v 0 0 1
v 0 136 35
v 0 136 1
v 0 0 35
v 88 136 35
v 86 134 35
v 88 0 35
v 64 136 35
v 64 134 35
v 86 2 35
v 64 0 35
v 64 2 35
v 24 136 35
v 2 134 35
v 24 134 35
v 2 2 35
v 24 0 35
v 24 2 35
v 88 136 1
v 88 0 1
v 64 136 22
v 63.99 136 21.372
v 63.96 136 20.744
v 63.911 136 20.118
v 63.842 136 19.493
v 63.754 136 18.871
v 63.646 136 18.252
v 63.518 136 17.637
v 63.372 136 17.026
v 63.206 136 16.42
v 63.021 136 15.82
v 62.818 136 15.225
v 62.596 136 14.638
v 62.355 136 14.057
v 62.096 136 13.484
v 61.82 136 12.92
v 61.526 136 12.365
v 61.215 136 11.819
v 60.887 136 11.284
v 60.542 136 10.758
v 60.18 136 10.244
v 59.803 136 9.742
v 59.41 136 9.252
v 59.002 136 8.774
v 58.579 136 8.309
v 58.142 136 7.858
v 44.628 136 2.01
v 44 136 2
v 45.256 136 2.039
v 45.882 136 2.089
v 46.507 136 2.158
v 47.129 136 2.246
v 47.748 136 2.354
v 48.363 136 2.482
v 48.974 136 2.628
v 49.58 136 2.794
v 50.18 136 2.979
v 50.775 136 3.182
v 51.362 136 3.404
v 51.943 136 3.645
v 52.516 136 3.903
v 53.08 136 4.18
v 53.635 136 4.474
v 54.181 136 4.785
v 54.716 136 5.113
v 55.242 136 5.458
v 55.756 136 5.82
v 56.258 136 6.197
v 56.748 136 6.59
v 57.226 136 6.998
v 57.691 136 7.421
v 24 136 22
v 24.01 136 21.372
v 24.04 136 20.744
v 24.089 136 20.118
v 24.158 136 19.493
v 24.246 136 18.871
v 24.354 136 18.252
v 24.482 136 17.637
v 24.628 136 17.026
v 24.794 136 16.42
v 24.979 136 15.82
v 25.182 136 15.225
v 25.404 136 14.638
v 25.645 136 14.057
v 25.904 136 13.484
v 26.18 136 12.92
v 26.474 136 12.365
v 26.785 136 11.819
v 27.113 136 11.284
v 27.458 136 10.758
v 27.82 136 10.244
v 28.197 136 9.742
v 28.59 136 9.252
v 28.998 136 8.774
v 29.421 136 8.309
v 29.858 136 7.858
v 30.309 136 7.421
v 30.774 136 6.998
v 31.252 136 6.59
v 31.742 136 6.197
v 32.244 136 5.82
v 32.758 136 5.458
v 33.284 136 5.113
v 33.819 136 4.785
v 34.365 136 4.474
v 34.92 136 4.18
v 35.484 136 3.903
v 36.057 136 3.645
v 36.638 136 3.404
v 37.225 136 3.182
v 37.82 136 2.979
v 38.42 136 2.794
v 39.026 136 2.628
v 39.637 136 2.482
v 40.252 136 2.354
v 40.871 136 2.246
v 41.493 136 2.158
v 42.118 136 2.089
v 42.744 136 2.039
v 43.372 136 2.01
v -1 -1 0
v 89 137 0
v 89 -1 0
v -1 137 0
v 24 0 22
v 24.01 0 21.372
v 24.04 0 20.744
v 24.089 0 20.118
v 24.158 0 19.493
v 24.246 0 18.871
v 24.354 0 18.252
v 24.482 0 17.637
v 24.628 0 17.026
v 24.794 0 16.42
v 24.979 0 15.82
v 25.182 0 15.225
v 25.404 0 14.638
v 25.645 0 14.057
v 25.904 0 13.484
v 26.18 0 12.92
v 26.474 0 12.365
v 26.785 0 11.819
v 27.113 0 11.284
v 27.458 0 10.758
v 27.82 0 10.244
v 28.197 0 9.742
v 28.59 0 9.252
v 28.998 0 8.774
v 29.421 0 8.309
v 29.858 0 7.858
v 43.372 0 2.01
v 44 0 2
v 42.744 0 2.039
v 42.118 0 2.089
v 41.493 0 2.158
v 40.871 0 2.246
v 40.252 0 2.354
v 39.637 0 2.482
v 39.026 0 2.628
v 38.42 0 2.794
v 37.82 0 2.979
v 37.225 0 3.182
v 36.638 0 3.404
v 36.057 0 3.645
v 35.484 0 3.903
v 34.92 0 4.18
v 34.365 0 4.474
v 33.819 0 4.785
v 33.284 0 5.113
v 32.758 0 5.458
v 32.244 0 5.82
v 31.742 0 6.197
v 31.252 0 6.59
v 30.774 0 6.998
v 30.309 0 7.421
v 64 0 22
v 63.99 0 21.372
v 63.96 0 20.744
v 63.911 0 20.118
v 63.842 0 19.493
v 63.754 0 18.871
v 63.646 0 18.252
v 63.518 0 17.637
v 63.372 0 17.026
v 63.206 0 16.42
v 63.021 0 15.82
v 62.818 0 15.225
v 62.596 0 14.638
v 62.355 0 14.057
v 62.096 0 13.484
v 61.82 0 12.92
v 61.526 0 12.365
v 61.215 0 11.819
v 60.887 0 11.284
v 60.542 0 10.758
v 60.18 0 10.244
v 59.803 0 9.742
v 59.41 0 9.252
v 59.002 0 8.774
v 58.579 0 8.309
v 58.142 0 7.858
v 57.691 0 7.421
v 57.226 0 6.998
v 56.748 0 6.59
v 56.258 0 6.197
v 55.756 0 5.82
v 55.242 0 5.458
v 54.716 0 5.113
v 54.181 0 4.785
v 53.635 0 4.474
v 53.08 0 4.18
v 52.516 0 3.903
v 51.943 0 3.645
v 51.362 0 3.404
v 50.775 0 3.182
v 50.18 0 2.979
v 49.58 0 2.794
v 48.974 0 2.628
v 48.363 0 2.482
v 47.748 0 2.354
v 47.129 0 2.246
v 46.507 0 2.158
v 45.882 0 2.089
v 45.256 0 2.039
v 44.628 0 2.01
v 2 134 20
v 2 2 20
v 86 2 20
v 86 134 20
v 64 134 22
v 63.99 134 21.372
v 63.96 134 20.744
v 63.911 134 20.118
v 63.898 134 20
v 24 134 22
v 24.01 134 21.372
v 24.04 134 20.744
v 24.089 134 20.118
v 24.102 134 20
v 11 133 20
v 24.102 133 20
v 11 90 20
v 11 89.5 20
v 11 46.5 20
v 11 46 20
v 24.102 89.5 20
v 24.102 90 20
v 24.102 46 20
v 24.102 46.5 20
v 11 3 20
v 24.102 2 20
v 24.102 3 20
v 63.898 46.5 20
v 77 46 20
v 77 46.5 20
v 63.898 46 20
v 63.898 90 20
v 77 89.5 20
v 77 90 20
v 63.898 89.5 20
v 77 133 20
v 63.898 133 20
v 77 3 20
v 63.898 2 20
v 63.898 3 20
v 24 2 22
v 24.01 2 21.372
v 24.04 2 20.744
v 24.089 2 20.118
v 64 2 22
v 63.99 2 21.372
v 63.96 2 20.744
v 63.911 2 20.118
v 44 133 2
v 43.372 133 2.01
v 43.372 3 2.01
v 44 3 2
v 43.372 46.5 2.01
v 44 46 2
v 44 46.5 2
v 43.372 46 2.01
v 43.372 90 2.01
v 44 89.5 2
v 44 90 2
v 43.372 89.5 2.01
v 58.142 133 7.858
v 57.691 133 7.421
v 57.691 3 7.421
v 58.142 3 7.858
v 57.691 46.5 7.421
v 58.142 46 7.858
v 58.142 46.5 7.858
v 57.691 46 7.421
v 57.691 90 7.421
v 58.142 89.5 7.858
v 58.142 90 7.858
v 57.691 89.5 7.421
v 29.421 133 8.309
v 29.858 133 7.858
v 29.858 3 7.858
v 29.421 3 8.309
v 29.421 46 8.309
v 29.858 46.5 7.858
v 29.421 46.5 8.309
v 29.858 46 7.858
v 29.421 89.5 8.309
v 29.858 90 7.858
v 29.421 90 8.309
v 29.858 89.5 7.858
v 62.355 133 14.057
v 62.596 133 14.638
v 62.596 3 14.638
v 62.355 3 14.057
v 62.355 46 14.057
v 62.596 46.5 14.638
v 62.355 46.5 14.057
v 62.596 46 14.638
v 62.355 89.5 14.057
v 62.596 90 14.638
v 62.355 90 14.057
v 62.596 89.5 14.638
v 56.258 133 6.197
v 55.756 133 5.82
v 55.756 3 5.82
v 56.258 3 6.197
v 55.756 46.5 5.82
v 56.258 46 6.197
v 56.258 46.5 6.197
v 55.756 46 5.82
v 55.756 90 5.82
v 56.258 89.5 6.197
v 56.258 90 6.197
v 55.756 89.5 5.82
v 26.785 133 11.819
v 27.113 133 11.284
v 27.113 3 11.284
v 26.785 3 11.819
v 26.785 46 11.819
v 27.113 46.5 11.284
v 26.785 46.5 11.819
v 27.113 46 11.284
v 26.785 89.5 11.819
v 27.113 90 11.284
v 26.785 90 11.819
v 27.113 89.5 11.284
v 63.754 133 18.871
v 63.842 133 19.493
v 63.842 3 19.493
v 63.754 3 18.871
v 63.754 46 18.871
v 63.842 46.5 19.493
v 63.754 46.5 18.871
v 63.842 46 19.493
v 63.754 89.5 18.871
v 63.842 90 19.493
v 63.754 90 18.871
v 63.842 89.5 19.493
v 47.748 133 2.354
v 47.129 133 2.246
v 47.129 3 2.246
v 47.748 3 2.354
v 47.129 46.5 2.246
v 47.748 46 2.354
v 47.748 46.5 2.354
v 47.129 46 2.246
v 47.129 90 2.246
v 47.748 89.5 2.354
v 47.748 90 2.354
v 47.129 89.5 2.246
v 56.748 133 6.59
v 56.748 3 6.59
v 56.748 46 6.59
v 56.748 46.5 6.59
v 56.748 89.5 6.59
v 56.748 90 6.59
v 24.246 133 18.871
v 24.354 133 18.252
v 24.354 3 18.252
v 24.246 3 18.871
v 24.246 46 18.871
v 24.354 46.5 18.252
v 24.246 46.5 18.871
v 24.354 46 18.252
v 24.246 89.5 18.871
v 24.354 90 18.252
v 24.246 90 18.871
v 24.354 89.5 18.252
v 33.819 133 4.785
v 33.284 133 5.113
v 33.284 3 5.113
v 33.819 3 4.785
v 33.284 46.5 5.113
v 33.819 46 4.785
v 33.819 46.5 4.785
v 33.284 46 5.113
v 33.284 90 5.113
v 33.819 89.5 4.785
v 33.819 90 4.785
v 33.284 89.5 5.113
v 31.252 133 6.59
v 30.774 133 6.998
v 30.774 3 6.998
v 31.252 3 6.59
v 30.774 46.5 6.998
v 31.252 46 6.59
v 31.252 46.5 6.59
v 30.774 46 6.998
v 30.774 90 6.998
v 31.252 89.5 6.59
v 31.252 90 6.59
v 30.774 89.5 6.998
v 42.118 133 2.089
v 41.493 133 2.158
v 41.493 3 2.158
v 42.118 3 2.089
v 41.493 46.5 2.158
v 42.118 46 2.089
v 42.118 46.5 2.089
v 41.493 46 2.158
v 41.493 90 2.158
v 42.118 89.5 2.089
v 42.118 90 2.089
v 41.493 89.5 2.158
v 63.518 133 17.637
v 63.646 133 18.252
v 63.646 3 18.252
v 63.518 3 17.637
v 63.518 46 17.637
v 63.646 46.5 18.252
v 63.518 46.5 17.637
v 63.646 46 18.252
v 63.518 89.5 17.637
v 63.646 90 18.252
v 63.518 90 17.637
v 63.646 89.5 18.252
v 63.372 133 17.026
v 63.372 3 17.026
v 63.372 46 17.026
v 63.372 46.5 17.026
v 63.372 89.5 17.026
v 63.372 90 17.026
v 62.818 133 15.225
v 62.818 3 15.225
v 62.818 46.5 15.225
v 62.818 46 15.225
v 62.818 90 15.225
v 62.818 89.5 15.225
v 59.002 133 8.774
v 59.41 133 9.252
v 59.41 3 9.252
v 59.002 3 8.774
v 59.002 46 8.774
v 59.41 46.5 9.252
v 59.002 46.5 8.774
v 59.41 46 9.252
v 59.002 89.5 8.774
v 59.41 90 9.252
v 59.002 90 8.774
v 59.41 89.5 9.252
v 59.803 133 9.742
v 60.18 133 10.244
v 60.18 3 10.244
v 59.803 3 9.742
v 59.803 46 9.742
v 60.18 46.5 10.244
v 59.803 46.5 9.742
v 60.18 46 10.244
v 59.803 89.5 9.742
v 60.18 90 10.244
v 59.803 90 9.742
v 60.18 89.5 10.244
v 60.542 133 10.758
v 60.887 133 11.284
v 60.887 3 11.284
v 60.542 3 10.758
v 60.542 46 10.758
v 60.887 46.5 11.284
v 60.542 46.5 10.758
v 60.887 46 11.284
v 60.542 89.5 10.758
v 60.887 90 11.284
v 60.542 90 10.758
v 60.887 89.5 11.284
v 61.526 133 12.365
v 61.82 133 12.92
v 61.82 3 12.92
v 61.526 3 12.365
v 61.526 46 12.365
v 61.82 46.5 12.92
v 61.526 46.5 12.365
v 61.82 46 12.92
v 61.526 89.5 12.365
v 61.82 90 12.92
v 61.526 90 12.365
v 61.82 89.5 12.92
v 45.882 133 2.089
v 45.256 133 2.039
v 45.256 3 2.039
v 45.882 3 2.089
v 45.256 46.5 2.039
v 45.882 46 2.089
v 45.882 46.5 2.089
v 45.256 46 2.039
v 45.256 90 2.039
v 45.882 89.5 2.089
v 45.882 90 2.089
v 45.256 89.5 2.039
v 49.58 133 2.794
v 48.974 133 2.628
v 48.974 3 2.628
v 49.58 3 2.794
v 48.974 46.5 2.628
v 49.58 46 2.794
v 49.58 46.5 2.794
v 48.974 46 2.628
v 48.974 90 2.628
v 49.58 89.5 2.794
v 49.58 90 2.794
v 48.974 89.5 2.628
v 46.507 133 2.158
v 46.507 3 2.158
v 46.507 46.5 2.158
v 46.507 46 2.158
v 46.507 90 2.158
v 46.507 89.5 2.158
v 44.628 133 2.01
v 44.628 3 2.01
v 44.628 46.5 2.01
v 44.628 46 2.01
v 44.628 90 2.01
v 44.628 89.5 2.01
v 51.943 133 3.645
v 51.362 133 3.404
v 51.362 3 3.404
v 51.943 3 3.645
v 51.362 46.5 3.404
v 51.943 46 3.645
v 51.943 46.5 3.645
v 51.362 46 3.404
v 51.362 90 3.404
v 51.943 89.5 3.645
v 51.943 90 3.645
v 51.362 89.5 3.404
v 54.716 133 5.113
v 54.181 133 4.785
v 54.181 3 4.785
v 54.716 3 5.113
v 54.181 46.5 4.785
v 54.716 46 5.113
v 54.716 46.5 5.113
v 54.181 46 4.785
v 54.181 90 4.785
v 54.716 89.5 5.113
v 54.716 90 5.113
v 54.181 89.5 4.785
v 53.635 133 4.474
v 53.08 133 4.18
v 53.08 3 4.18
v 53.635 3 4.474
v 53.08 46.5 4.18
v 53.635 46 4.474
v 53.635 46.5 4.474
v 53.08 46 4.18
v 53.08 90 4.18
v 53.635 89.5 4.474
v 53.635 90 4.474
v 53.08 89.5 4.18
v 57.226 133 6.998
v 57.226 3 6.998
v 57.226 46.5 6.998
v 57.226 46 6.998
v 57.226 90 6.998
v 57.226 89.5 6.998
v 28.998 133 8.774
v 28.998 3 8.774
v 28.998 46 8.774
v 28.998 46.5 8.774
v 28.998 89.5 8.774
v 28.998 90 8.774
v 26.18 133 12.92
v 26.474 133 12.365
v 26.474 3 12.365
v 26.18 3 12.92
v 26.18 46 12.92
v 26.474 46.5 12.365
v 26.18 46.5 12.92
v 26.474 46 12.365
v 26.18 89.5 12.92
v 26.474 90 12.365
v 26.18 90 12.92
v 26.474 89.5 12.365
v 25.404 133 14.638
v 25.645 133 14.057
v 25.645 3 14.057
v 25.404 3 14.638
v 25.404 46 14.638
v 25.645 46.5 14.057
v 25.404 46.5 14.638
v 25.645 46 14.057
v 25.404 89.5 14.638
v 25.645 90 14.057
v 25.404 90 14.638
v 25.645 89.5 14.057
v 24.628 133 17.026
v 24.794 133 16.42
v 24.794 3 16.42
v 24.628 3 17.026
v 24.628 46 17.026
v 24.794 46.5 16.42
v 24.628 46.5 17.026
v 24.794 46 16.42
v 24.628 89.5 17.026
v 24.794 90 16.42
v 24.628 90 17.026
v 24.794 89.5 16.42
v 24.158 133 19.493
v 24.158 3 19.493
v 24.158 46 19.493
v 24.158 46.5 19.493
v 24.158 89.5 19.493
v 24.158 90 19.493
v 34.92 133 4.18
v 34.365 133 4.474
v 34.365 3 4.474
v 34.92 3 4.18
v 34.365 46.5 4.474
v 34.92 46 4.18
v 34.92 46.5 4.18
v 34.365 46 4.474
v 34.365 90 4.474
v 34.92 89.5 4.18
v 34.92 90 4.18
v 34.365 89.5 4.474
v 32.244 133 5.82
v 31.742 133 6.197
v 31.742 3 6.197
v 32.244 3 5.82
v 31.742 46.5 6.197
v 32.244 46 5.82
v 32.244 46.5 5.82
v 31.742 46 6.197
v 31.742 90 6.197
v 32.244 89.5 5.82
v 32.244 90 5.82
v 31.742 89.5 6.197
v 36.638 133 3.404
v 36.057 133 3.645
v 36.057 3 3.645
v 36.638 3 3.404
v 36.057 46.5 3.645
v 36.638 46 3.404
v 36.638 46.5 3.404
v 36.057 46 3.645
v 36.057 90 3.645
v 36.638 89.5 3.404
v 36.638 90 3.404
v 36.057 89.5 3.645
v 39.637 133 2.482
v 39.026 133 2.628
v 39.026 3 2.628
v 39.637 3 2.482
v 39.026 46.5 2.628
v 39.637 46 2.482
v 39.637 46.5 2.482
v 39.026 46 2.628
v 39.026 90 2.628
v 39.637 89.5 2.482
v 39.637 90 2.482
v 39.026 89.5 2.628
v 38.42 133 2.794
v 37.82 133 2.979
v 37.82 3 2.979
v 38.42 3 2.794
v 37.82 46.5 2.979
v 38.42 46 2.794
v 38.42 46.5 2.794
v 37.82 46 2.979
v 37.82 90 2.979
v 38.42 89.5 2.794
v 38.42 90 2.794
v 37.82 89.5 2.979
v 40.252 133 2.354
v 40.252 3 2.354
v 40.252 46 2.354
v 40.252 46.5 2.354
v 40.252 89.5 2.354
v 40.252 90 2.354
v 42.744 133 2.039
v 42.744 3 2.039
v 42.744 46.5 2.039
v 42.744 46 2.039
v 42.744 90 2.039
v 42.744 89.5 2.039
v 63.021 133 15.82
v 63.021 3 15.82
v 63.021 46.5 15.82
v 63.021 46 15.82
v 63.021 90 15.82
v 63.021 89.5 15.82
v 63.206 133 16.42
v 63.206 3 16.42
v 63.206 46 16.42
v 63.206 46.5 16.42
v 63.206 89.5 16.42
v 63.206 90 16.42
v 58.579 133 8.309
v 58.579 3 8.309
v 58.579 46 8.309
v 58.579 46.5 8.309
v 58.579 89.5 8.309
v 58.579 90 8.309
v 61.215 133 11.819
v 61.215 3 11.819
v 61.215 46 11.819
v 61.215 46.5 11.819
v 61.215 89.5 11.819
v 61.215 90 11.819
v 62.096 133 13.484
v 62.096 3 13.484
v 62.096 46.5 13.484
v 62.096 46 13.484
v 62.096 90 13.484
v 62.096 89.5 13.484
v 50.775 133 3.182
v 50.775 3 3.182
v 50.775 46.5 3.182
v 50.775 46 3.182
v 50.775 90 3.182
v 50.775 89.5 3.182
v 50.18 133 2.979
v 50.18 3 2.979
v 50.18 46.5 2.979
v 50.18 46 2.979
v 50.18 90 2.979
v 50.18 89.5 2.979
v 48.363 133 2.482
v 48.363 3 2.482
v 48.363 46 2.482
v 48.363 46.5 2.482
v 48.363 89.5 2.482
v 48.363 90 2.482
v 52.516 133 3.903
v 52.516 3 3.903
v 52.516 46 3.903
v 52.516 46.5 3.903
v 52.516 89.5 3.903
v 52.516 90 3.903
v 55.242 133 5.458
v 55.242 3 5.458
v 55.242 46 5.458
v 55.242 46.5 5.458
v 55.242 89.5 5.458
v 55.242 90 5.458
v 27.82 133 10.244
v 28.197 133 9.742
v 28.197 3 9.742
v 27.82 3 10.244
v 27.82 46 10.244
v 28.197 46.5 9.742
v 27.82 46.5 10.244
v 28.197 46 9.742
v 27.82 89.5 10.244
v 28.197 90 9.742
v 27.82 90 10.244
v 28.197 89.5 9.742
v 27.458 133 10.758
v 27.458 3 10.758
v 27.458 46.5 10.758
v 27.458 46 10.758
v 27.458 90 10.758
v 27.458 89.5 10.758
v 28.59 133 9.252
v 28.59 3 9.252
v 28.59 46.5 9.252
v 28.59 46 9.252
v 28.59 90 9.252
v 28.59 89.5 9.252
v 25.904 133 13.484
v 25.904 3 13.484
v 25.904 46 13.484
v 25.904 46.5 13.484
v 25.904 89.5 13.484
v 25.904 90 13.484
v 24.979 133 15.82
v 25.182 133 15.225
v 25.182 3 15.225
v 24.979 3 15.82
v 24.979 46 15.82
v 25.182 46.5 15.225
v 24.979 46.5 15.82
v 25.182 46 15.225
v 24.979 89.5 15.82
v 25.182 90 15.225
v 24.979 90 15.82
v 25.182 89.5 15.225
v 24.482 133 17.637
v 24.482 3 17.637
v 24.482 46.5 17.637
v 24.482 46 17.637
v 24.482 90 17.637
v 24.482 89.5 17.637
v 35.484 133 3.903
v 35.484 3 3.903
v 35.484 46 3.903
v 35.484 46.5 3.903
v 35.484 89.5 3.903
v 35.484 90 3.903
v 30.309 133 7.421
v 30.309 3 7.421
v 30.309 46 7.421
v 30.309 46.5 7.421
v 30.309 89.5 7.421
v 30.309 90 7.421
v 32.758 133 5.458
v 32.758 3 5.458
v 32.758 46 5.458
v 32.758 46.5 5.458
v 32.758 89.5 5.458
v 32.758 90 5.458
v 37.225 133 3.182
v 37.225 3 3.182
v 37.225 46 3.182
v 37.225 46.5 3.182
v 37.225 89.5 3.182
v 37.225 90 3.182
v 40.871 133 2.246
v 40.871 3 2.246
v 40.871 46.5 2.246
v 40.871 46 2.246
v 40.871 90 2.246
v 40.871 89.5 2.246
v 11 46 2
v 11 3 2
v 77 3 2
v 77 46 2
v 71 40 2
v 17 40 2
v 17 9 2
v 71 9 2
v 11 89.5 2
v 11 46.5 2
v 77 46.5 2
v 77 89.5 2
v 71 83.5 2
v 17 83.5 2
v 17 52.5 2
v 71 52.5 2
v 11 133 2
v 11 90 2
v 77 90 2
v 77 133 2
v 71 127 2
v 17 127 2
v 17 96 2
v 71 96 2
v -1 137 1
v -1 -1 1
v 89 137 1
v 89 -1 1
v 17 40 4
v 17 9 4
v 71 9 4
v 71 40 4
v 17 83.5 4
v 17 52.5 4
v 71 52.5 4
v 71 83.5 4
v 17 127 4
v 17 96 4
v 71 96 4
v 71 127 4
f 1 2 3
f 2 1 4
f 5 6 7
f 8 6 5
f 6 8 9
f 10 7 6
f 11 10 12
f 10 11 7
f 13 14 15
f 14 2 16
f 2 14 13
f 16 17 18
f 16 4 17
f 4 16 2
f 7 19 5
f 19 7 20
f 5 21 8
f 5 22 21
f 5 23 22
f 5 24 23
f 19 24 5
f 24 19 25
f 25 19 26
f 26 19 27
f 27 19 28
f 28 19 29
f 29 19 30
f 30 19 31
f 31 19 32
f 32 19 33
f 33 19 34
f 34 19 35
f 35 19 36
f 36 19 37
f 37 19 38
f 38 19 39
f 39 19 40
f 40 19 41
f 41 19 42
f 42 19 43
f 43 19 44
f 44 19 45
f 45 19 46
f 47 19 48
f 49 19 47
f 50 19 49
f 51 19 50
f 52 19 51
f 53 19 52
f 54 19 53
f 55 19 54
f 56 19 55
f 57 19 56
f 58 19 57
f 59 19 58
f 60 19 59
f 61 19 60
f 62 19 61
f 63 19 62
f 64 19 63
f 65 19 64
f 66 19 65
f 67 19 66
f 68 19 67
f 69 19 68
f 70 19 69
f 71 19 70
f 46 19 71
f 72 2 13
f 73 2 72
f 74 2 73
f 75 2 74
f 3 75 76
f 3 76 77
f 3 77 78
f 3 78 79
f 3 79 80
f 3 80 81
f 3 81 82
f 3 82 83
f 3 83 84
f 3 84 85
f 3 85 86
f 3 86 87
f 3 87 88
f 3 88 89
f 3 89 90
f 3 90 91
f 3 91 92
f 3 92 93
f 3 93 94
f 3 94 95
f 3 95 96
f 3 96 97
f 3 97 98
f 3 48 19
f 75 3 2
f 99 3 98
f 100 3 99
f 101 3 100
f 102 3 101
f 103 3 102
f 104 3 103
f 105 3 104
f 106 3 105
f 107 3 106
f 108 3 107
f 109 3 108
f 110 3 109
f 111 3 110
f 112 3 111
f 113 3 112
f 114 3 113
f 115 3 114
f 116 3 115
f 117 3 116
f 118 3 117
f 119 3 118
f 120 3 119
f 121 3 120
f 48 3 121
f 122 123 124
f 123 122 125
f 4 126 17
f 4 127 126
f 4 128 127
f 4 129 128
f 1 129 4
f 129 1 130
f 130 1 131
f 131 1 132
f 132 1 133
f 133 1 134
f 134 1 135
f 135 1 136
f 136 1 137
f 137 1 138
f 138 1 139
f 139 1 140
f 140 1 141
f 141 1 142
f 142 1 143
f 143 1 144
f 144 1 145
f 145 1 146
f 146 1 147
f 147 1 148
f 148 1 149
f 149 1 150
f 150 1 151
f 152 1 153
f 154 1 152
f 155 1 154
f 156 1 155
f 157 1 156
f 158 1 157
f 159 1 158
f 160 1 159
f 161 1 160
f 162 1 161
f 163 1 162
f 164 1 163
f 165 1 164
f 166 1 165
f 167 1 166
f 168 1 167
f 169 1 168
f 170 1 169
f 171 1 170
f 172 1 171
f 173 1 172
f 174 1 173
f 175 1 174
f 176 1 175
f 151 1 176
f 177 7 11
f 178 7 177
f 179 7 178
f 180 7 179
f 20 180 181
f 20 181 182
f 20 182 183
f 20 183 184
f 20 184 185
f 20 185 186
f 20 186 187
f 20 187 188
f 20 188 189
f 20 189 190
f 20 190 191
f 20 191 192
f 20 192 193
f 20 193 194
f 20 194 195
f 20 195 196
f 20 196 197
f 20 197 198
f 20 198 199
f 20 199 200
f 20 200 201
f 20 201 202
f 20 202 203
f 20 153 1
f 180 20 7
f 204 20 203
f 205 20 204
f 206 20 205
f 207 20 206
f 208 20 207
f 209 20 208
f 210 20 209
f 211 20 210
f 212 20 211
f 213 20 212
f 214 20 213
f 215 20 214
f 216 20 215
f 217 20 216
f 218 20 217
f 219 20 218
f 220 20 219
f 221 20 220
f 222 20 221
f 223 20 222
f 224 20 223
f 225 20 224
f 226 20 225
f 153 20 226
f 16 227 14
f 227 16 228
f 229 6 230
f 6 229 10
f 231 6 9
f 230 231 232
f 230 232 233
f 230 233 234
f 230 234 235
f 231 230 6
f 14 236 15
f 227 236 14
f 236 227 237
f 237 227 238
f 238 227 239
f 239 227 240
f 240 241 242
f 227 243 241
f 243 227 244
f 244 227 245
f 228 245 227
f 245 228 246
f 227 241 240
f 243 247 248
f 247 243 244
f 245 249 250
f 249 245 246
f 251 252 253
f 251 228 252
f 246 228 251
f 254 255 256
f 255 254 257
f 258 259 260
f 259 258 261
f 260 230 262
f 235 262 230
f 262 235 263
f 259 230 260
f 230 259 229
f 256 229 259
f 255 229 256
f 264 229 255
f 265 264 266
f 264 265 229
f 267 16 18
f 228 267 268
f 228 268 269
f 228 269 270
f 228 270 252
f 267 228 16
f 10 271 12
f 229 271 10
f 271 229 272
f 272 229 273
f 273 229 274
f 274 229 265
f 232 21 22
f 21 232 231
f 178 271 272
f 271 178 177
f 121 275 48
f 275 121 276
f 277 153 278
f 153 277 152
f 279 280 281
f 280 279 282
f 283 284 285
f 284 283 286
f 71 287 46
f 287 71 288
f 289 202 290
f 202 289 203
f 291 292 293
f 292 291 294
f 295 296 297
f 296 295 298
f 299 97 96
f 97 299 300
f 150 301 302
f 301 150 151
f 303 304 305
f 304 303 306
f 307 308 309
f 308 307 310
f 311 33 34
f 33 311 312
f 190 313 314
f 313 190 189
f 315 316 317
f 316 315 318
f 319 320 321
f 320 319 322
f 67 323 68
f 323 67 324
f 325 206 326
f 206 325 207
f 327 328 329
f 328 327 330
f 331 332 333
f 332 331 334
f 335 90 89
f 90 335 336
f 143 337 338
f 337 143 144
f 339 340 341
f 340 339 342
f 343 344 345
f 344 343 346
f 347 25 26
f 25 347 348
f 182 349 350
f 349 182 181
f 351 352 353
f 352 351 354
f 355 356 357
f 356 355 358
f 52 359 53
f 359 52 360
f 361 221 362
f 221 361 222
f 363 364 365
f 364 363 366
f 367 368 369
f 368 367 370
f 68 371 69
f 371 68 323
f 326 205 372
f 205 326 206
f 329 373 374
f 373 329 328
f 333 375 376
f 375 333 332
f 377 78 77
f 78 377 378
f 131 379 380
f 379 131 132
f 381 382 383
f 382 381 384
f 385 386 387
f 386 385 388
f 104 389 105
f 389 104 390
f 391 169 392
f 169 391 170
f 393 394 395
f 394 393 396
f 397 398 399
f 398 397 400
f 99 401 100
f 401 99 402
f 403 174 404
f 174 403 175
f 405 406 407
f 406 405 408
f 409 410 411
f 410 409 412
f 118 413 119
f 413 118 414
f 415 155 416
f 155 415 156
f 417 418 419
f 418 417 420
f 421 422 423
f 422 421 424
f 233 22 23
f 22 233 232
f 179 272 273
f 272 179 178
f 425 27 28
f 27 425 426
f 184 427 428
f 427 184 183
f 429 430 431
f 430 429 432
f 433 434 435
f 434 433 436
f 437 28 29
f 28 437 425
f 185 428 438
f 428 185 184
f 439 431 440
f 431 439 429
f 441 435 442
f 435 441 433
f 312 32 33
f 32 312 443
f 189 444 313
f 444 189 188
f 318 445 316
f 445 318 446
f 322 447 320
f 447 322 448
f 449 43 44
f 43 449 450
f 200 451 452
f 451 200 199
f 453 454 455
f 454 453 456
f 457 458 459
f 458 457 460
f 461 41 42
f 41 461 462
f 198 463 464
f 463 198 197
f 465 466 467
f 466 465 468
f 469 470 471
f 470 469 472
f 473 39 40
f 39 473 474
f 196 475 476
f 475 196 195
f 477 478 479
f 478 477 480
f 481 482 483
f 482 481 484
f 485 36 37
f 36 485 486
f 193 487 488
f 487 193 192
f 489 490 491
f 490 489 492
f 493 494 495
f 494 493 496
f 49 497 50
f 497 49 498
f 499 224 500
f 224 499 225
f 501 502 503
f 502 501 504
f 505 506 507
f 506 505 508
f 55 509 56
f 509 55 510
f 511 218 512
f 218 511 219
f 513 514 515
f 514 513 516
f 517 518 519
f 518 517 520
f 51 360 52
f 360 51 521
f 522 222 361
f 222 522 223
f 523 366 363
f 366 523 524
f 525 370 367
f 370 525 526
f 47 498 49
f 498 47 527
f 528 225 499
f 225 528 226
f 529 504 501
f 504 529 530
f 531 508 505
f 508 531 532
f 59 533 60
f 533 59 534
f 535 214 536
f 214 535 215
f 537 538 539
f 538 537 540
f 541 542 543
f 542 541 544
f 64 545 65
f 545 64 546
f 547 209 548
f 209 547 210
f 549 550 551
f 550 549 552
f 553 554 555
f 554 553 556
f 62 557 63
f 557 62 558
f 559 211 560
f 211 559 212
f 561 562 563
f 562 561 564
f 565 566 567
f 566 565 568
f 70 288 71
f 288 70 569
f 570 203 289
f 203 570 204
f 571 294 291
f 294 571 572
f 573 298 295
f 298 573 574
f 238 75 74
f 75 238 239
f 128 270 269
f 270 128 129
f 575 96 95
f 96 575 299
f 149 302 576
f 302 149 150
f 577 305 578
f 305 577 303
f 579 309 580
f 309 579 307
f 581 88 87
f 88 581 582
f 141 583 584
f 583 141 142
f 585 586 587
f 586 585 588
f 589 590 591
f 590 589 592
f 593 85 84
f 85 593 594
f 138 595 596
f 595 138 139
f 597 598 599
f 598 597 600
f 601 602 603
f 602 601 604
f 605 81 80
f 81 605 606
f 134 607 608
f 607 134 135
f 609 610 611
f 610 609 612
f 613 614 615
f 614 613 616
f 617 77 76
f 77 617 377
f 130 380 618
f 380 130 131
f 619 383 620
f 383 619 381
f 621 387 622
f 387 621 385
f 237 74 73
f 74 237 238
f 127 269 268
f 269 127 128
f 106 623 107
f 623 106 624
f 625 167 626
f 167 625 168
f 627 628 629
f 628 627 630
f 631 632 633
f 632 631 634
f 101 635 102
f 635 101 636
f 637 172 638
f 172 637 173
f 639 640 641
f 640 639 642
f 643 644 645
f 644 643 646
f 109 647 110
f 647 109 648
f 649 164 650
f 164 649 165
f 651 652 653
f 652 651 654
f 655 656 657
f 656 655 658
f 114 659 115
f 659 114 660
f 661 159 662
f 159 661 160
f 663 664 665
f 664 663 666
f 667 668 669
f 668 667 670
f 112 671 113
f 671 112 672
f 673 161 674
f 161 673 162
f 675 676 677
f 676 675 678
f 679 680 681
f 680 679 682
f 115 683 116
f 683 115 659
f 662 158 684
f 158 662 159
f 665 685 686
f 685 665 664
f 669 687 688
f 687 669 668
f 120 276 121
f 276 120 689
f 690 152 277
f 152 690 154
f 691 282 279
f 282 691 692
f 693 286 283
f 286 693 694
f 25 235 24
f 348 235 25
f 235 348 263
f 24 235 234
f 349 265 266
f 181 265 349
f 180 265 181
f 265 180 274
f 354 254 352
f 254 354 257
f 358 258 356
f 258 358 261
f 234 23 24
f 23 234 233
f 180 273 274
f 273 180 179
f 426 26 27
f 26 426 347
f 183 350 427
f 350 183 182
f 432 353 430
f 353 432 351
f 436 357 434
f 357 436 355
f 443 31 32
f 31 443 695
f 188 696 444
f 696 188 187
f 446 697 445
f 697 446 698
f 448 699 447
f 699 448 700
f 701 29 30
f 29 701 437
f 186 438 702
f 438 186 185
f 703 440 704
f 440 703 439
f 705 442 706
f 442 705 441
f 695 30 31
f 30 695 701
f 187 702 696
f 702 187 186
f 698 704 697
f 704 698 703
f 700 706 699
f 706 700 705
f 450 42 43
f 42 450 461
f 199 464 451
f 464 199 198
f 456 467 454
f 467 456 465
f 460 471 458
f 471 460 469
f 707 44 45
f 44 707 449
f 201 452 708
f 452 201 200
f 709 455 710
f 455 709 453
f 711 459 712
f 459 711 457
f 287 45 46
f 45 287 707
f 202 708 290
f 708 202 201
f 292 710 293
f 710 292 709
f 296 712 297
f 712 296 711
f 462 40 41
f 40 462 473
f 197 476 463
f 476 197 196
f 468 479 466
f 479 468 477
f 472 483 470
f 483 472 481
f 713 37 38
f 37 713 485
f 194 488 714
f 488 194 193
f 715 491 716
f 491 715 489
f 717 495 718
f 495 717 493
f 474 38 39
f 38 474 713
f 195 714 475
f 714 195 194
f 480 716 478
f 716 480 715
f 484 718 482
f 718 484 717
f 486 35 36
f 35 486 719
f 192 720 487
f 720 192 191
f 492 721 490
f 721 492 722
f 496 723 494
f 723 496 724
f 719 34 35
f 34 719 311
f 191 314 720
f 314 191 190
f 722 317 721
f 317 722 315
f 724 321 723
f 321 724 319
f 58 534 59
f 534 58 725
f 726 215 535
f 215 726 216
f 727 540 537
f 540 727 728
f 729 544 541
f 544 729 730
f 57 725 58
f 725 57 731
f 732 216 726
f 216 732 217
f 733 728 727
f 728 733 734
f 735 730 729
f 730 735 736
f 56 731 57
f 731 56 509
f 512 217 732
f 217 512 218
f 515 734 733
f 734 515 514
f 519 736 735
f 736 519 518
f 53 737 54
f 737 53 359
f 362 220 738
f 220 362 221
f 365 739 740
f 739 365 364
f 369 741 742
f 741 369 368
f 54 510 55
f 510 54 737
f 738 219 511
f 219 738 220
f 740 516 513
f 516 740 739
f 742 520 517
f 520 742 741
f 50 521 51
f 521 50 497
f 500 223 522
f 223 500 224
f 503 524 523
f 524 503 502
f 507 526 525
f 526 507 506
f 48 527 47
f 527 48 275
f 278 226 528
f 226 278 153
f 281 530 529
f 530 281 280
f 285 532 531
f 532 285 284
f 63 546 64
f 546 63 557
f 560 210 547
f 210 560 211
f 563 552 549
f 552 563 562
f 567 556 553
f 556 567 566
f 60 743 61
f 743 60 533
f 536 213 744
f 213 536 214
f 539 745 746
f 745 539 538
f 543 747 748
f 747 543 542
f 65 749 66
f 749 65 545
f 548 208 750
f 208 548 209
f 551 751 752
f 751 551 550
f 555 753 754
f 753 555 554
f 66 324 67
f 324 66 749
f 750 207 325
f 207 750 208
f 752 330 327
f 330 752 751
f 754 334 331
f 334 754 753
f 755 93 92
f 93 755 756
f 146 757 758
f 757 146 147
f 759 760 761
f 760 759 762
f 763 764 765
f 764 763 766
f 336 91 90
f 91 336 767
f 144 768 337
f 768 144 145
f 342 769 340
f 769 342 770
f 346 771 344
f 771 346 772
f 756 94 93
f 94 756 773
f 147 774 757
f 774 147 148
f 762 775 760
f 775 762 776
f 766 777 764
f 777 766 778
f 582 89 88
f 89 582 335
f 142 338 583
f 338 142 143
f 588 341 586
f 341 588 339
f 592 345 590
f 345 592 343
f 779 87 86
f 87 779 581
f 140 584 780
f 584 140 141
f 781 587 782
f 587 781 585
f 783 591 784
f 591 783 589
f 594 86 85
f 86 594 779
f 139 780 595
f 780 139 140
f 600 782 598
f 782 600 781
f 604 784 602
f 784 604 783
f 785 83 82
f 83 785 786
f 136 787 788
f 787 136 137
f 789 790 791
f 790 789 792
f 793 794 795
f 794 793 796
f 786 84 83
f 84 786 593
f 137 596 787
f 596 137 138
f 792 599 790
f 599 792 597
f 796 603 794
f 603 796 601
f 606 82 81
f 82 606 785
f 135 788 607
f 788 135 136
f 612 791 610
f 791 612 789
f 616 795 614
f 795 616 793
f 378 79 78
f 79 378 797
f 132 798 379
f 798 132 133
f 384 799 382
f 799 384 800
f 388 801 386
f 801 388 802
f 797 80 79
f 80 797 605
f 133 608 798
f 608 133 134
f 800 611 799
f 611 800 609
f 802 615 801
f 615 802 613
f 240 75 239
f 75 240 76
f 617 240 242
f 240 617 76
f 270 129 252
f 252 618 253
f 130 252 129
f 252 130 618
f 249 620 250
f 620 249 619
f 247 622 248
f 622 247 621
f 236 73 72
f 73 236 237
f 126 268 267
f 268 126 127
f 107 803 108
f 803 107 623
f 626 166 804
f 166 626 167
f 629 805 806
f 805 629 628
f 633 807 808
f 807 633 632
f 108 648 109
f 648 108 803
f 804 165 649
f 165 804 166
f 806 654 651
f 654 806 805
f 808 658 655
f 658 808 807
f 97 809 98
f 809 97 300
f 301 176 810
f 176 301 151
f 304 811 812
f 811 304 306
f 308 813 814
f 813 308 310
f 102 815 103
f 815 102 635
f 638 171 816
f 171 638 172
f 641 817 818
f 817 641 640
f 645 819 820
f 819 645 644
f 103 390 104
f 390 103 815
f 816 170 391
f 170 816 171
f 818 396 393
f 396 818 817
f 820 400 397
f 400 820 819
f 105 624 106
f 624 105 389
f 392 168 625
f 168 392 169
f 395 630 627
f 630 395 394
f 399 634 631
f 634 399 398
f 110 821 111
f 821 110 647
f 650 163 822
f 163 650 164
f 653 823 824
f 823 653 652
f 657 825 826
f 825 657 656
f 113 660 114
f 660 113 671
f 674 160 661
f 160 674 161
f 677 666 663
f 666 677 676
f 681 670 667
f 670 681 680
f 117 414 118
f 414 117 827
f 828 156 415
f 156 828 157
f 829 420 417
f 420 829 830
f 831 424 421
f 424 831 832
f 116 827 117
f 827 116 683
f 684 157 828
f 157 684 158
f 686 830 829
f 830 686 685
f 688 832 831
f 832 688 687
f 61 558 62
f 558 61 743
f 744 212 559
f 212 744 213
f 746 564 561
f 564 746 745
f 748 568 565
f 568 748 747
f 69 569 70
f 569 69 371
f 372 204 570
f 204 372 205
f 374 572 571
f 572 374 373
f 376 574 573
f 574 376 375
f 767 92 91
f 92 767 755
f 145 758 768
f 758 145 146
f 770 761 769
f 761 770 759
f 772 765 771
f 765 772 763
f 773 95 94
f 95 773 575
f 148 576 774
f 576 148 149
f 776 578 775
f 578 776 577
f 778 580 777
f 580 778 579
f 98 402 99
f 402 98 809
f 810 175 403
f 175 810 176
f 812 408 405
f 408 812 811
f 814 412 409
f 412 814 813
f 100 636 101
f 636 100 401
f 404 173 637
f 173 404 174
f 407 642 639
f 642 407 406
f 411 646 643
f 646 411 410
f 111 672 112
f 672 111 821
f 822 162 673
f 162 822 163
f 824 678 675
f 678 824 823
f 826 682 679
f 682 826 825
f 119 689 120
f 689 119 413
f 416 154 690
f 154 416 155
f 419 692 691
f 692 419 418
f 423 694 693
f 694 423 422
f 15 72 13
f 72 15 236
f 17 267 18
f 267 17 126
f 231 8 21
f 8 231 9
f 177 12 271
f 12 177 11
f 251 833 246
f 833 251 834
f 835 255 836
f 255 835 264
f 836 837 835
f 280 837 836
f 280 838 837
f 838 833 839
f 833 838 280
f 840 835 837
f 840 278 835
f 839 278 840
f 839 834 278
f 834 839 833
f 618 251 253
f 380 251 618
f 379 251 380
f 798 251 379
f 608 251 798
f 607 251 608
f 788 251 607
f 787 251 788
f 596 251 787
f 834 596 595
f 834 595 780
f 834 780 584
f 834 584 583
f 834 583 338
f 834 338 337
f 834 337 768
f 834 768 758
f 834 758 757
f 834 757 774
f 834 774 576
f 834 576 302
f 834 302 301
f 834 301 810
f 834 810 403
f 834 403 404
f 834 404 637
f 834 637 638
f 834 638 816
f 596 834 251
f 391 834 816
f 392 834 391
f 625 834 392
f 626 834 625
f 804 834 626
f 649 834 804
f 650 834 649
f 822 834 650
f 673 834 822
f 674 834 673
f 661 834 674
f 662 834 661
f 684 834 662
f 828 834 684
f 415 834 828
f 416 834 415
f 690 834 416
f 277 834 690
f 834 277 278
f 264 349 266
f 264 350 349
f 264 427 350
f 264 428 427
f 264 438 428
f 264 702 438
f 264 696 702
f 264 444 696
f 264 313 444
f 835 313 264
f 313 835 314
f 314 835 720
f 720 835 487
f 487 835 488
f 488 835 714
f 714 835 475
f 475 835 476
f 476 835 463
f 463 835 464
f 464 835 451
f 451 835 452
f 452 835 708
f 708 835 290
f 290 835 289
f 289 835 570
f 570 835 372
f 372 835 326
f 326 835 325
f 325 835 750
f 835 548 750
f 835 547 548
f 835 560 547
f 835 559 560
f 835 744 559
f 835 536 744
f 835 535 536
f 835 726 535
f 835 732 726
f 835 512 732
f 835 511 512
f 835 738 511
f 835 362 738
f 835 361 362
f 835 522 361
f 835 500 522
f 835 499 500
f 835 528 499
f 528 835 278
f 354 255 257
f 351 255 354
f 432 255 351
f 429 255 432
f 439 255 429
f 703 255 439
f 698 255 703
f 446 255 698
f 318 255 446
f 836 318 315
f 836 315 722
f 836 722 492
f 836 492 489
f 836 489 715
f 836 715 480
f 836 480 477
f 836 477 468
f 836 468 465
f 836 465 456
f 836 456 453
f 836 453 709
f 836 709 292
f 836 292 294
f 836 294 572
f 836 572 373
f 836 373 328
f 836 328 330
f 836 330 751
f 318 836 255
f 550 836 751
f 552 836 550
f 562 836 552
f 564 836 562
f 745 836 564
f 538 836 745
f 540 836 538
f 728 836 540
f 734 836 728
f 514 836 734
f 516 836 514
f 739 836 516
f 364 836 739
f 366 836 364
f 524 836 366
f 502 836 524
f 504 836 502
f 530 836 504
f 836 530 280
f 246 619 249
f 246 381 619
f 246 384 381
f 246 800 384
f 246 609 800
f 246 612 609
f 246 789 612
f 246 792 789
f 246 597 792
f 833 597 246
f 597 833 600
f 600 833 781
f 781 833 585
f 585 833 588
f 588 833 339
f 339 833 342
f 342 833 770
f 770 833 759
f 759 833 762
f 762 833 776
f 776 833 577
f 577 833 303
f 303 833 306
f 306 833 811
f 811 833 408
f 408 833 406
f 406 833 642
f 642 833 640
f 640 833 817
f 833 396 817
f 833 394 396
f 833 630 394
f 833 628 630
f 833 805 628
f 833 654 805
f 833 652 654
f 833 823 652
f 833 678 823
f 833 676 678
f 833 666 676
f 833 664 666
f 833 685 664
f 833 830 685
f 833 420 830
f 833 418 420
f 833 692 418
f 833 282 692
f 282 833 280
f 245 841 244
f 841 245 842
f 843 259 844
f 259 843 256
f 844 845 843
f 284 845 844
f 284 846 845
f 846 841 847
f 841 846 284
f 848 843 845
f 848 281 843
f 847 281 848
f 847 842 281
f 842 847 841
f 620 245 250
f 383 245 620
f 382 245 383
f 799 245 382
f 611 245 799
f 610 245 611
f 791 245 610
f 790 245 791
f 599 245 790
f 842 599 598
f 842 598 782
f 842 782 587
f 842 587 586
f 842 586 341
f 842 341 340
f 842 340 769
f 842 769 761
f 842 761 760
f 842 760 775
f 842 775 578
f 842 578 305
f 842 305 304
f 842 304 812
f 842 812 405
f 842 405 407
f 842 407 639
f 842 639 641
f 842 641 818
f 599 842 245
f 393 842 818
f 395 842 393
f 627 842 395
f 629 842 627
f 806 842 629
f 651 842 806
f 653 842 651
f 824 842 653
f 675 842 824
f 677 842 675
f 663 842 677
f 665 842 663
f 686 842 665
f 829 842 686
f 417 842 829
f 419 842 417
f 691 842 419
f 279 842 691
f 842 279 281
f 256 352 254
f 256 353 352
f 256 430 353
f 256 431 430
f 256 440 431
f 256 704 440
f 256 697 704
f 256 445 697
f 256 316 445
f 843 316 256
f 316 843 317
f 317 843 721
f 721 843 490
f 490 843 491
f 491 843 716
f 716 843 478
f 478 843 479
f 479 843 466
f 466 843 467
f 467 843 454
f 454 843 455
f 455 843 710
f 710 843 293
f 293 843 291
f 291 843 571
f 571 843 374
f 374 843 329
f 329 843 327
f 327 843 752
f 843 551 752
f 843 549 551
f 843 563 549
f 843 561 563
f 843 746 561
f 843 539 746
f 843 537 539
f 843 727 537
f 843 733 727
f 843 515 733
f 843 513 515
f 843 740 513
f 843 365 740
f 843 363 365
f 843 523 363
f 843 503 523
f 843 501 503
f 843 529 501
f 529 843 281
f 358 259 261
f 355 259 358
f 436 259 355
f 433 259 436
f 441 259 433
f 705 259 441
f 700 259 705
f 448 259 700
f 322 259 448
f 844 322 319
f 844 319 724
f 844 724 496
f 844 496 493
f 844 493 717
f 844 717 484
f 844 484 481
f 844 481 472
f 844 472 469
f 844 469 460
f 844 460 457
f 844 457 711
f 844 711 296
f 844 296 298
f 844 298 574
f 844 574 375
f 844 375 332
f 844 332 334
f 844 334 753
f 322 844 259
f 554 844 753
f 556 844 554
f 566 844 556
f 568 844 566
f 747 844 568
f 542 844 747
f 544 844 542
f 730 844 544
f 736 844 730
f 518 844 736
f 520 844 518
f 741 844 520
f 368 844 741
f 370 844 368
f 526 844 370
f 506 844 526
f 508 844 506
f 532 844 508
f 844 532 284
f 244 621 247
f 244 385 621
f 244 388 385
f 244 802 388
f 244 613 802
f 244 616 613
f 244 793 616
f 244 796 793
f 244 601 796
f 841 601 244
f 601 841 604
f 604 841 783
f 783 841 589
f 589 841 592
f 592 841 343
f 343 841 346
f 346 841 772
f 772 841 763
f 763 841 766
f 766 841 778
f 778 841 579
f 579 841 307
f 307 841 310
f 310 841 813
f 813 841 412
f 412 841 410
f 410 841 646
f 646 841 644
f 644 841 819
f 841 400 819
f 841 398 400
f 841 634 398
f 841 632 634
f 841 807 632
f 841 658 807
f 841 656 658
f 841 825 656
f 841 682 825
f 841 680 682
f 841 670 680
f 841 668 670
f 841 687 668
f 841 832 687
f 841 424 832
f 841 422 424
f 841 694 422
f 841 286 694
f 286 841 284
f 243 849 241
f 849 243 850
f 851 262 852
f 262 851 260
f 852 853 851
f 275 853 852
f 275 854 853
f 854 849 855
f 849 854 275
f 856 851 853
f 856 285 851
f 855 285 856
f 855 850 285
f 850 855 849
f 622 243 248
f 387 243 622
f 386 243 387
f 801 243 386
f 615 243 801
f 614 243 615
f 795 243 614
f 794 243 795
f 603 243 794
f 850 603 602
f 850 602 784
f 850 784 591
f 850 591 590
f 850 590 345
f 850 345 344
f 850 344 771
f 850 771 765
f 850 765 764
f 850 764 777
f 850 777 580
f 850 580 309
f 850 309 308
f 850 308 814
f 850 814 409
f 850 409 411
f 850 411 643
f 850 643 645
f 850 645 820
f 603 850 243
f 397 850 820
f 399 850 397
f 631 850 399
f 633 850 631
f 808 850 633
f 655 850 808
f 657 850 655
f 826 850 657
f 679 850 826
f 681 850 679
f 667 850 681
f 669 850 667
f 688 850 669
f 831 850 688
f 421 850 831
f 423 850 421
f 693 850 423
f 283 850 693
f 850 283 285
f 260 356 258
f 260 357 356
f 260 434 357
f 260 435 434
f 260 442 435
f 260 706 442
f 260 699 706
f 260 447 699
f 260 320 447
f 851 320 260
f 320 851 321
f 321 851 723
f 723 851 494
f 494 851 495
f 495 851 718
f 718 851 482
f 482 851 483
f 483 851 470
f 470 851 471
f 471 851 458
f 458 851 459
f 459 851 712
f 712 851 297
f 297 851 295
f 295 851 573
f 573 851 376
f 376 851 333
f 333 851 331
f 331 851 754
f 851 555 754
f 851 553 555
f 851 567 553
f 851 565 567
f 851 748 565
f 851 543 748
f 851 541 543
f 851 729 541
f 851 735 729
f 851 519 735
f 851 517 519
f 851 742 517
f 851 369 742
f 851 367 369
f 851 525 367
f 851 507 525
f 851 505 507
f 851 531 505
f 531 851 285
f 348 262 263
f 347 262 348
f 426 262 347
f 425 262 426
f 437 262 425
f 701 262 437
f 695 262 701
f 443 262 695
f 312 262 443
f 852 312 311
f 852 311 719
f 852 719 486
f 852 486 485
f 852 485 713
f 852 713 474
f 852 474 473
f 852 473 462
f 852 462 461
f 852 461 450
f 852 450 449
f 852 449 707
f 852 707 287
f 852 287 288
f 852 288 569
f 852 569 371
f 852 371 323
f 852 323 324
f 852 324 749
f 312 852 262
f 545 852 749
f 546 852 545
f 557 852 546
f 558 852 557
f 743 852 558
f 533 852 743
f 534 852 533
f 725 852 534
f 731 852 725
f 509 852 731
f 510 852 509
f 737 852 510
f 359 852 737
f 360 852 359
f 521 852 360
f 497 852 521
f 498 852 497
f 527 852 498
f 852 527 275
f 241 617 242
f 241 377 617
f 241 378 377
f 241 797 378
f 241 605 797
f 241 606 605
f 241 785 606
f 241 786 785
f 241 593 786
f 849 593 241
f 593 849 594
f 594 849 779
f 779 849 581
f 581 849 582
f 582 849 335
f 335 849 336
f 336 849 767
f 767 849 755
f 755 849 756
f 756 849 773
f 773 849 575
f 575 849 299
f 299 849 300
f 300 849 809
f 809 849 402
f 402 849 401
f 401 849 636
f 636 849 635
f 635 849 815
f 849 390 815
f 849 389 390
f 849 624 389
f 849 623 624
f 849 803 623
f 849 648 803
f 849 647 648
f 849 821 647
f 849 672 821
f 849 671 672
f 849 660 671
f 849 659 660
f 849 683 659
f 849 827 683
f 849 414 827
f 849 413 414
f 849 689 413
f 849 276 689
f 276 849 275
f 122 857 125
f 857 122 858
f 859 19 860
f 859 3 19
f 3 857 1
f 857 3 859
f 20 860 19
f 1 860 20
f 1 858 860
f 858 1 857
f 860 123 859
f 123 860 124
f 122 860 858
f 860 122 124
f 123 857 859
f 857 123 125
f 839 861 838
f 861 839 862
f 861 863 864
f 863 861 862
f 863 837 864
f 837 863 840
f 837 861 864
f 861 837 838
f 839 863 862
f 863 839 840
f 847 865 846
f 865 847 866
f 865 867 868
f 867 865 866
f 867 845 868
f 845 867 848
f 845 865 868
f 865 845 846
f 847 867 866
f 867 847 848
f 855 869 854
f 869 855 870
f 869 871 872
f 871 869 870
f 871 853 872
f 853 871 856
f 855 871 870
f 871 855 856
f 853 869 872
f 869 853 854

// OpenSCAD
$fn=200;

THICK = 2;

LARGE_CARD_L = 132;
LARGE_CARD_W = 84;
LARGE_CARD_STACK = 15;

SMALL_CARD_L = 66;
SMALL_CARD_W = 43;
SMALL_CARD_STACK = 16;

STUMP = 2;
STUMP_MARGIN = 6;

BOX_W = LARGE_CARD_W + (THICK * 2);
BOX_L = LARGE_CARD_L + (THICK * 2);
BOX_H = LARGE_CARD_STACK + SMALL_CARD_STACK + THICK + STUMP;

SMALL_X = (BOX_W / 2) - (SMALL_CARD_L / 2);

translate([
    -1, 
    -1, 
    0]) {
        
    cube(size = [
        BOX_W + 2,
        BOX_L + 2, 
        1]);
}

difference() {
    cube(size = [
        BOX_W,
        BOX_L, 
        BOX_H]);

    translate([
        THICK, 
        THICK, 
        BOX_H - LARGE_CARD_STACK]) {
            
        cube(size = [
            LARGE_CARD_W,
            LARGE_CARD_L,
            LARGE_CARD_STACK + 1]);
    }

    translate([
        (BOX_W / 2),
        -1,
        22]) {

        rotate([270, 0, 0]) {
            cylinder(
                h = 1000,
                r = 20);
        }
    }

    translate([
        (BOX_W / 2) - 20, 
        -1, 
        22]) {
            
        cube(size = [
            40,
            150,
            80]);
    }
    
    smallBox(
        SMALL_X, 
        THICK + 1, 
        THICK);

    smallBox(
        SMALL_X, 
        (BOX_L / 2) - (SMALL_CARD_W / 2), 
        THICK);

    smallBox(
        SMALL_X, 
        BOX_L - SMALL_CARD_W - THICK - 1, 
        THICK);
}

smallStump(THICK + 1 + STUMP_MARGIN);
smallStump((BOX_L / 2) - (SMALL_CARD_W / 2) + STUMP_MARGIN);
smallStump(BOX_L - SMALL_CARD_W - THICK - 1 + STUMP_MARGIN);

// minkowski() {

// }

module smallStump(y) {
    translate([SMALL_X + STUMP_MARGIN, y, THICK]) {
        cube(size = [
            SMALL_CARD_L - (STUMP_MARGIN * 2),
            SMALL_CARD_W - (STUMP_MARGIN * 2),
            STUMP]);
    }
}

module smallBox(x, y, z) {
    translate([x, y, z]) {
        cube(size = [
            SMALL_CARD_L,
            SMALL_CARD_W,
            SMALL_CARD_STACK + 1 + STUMP]);
    }
}
